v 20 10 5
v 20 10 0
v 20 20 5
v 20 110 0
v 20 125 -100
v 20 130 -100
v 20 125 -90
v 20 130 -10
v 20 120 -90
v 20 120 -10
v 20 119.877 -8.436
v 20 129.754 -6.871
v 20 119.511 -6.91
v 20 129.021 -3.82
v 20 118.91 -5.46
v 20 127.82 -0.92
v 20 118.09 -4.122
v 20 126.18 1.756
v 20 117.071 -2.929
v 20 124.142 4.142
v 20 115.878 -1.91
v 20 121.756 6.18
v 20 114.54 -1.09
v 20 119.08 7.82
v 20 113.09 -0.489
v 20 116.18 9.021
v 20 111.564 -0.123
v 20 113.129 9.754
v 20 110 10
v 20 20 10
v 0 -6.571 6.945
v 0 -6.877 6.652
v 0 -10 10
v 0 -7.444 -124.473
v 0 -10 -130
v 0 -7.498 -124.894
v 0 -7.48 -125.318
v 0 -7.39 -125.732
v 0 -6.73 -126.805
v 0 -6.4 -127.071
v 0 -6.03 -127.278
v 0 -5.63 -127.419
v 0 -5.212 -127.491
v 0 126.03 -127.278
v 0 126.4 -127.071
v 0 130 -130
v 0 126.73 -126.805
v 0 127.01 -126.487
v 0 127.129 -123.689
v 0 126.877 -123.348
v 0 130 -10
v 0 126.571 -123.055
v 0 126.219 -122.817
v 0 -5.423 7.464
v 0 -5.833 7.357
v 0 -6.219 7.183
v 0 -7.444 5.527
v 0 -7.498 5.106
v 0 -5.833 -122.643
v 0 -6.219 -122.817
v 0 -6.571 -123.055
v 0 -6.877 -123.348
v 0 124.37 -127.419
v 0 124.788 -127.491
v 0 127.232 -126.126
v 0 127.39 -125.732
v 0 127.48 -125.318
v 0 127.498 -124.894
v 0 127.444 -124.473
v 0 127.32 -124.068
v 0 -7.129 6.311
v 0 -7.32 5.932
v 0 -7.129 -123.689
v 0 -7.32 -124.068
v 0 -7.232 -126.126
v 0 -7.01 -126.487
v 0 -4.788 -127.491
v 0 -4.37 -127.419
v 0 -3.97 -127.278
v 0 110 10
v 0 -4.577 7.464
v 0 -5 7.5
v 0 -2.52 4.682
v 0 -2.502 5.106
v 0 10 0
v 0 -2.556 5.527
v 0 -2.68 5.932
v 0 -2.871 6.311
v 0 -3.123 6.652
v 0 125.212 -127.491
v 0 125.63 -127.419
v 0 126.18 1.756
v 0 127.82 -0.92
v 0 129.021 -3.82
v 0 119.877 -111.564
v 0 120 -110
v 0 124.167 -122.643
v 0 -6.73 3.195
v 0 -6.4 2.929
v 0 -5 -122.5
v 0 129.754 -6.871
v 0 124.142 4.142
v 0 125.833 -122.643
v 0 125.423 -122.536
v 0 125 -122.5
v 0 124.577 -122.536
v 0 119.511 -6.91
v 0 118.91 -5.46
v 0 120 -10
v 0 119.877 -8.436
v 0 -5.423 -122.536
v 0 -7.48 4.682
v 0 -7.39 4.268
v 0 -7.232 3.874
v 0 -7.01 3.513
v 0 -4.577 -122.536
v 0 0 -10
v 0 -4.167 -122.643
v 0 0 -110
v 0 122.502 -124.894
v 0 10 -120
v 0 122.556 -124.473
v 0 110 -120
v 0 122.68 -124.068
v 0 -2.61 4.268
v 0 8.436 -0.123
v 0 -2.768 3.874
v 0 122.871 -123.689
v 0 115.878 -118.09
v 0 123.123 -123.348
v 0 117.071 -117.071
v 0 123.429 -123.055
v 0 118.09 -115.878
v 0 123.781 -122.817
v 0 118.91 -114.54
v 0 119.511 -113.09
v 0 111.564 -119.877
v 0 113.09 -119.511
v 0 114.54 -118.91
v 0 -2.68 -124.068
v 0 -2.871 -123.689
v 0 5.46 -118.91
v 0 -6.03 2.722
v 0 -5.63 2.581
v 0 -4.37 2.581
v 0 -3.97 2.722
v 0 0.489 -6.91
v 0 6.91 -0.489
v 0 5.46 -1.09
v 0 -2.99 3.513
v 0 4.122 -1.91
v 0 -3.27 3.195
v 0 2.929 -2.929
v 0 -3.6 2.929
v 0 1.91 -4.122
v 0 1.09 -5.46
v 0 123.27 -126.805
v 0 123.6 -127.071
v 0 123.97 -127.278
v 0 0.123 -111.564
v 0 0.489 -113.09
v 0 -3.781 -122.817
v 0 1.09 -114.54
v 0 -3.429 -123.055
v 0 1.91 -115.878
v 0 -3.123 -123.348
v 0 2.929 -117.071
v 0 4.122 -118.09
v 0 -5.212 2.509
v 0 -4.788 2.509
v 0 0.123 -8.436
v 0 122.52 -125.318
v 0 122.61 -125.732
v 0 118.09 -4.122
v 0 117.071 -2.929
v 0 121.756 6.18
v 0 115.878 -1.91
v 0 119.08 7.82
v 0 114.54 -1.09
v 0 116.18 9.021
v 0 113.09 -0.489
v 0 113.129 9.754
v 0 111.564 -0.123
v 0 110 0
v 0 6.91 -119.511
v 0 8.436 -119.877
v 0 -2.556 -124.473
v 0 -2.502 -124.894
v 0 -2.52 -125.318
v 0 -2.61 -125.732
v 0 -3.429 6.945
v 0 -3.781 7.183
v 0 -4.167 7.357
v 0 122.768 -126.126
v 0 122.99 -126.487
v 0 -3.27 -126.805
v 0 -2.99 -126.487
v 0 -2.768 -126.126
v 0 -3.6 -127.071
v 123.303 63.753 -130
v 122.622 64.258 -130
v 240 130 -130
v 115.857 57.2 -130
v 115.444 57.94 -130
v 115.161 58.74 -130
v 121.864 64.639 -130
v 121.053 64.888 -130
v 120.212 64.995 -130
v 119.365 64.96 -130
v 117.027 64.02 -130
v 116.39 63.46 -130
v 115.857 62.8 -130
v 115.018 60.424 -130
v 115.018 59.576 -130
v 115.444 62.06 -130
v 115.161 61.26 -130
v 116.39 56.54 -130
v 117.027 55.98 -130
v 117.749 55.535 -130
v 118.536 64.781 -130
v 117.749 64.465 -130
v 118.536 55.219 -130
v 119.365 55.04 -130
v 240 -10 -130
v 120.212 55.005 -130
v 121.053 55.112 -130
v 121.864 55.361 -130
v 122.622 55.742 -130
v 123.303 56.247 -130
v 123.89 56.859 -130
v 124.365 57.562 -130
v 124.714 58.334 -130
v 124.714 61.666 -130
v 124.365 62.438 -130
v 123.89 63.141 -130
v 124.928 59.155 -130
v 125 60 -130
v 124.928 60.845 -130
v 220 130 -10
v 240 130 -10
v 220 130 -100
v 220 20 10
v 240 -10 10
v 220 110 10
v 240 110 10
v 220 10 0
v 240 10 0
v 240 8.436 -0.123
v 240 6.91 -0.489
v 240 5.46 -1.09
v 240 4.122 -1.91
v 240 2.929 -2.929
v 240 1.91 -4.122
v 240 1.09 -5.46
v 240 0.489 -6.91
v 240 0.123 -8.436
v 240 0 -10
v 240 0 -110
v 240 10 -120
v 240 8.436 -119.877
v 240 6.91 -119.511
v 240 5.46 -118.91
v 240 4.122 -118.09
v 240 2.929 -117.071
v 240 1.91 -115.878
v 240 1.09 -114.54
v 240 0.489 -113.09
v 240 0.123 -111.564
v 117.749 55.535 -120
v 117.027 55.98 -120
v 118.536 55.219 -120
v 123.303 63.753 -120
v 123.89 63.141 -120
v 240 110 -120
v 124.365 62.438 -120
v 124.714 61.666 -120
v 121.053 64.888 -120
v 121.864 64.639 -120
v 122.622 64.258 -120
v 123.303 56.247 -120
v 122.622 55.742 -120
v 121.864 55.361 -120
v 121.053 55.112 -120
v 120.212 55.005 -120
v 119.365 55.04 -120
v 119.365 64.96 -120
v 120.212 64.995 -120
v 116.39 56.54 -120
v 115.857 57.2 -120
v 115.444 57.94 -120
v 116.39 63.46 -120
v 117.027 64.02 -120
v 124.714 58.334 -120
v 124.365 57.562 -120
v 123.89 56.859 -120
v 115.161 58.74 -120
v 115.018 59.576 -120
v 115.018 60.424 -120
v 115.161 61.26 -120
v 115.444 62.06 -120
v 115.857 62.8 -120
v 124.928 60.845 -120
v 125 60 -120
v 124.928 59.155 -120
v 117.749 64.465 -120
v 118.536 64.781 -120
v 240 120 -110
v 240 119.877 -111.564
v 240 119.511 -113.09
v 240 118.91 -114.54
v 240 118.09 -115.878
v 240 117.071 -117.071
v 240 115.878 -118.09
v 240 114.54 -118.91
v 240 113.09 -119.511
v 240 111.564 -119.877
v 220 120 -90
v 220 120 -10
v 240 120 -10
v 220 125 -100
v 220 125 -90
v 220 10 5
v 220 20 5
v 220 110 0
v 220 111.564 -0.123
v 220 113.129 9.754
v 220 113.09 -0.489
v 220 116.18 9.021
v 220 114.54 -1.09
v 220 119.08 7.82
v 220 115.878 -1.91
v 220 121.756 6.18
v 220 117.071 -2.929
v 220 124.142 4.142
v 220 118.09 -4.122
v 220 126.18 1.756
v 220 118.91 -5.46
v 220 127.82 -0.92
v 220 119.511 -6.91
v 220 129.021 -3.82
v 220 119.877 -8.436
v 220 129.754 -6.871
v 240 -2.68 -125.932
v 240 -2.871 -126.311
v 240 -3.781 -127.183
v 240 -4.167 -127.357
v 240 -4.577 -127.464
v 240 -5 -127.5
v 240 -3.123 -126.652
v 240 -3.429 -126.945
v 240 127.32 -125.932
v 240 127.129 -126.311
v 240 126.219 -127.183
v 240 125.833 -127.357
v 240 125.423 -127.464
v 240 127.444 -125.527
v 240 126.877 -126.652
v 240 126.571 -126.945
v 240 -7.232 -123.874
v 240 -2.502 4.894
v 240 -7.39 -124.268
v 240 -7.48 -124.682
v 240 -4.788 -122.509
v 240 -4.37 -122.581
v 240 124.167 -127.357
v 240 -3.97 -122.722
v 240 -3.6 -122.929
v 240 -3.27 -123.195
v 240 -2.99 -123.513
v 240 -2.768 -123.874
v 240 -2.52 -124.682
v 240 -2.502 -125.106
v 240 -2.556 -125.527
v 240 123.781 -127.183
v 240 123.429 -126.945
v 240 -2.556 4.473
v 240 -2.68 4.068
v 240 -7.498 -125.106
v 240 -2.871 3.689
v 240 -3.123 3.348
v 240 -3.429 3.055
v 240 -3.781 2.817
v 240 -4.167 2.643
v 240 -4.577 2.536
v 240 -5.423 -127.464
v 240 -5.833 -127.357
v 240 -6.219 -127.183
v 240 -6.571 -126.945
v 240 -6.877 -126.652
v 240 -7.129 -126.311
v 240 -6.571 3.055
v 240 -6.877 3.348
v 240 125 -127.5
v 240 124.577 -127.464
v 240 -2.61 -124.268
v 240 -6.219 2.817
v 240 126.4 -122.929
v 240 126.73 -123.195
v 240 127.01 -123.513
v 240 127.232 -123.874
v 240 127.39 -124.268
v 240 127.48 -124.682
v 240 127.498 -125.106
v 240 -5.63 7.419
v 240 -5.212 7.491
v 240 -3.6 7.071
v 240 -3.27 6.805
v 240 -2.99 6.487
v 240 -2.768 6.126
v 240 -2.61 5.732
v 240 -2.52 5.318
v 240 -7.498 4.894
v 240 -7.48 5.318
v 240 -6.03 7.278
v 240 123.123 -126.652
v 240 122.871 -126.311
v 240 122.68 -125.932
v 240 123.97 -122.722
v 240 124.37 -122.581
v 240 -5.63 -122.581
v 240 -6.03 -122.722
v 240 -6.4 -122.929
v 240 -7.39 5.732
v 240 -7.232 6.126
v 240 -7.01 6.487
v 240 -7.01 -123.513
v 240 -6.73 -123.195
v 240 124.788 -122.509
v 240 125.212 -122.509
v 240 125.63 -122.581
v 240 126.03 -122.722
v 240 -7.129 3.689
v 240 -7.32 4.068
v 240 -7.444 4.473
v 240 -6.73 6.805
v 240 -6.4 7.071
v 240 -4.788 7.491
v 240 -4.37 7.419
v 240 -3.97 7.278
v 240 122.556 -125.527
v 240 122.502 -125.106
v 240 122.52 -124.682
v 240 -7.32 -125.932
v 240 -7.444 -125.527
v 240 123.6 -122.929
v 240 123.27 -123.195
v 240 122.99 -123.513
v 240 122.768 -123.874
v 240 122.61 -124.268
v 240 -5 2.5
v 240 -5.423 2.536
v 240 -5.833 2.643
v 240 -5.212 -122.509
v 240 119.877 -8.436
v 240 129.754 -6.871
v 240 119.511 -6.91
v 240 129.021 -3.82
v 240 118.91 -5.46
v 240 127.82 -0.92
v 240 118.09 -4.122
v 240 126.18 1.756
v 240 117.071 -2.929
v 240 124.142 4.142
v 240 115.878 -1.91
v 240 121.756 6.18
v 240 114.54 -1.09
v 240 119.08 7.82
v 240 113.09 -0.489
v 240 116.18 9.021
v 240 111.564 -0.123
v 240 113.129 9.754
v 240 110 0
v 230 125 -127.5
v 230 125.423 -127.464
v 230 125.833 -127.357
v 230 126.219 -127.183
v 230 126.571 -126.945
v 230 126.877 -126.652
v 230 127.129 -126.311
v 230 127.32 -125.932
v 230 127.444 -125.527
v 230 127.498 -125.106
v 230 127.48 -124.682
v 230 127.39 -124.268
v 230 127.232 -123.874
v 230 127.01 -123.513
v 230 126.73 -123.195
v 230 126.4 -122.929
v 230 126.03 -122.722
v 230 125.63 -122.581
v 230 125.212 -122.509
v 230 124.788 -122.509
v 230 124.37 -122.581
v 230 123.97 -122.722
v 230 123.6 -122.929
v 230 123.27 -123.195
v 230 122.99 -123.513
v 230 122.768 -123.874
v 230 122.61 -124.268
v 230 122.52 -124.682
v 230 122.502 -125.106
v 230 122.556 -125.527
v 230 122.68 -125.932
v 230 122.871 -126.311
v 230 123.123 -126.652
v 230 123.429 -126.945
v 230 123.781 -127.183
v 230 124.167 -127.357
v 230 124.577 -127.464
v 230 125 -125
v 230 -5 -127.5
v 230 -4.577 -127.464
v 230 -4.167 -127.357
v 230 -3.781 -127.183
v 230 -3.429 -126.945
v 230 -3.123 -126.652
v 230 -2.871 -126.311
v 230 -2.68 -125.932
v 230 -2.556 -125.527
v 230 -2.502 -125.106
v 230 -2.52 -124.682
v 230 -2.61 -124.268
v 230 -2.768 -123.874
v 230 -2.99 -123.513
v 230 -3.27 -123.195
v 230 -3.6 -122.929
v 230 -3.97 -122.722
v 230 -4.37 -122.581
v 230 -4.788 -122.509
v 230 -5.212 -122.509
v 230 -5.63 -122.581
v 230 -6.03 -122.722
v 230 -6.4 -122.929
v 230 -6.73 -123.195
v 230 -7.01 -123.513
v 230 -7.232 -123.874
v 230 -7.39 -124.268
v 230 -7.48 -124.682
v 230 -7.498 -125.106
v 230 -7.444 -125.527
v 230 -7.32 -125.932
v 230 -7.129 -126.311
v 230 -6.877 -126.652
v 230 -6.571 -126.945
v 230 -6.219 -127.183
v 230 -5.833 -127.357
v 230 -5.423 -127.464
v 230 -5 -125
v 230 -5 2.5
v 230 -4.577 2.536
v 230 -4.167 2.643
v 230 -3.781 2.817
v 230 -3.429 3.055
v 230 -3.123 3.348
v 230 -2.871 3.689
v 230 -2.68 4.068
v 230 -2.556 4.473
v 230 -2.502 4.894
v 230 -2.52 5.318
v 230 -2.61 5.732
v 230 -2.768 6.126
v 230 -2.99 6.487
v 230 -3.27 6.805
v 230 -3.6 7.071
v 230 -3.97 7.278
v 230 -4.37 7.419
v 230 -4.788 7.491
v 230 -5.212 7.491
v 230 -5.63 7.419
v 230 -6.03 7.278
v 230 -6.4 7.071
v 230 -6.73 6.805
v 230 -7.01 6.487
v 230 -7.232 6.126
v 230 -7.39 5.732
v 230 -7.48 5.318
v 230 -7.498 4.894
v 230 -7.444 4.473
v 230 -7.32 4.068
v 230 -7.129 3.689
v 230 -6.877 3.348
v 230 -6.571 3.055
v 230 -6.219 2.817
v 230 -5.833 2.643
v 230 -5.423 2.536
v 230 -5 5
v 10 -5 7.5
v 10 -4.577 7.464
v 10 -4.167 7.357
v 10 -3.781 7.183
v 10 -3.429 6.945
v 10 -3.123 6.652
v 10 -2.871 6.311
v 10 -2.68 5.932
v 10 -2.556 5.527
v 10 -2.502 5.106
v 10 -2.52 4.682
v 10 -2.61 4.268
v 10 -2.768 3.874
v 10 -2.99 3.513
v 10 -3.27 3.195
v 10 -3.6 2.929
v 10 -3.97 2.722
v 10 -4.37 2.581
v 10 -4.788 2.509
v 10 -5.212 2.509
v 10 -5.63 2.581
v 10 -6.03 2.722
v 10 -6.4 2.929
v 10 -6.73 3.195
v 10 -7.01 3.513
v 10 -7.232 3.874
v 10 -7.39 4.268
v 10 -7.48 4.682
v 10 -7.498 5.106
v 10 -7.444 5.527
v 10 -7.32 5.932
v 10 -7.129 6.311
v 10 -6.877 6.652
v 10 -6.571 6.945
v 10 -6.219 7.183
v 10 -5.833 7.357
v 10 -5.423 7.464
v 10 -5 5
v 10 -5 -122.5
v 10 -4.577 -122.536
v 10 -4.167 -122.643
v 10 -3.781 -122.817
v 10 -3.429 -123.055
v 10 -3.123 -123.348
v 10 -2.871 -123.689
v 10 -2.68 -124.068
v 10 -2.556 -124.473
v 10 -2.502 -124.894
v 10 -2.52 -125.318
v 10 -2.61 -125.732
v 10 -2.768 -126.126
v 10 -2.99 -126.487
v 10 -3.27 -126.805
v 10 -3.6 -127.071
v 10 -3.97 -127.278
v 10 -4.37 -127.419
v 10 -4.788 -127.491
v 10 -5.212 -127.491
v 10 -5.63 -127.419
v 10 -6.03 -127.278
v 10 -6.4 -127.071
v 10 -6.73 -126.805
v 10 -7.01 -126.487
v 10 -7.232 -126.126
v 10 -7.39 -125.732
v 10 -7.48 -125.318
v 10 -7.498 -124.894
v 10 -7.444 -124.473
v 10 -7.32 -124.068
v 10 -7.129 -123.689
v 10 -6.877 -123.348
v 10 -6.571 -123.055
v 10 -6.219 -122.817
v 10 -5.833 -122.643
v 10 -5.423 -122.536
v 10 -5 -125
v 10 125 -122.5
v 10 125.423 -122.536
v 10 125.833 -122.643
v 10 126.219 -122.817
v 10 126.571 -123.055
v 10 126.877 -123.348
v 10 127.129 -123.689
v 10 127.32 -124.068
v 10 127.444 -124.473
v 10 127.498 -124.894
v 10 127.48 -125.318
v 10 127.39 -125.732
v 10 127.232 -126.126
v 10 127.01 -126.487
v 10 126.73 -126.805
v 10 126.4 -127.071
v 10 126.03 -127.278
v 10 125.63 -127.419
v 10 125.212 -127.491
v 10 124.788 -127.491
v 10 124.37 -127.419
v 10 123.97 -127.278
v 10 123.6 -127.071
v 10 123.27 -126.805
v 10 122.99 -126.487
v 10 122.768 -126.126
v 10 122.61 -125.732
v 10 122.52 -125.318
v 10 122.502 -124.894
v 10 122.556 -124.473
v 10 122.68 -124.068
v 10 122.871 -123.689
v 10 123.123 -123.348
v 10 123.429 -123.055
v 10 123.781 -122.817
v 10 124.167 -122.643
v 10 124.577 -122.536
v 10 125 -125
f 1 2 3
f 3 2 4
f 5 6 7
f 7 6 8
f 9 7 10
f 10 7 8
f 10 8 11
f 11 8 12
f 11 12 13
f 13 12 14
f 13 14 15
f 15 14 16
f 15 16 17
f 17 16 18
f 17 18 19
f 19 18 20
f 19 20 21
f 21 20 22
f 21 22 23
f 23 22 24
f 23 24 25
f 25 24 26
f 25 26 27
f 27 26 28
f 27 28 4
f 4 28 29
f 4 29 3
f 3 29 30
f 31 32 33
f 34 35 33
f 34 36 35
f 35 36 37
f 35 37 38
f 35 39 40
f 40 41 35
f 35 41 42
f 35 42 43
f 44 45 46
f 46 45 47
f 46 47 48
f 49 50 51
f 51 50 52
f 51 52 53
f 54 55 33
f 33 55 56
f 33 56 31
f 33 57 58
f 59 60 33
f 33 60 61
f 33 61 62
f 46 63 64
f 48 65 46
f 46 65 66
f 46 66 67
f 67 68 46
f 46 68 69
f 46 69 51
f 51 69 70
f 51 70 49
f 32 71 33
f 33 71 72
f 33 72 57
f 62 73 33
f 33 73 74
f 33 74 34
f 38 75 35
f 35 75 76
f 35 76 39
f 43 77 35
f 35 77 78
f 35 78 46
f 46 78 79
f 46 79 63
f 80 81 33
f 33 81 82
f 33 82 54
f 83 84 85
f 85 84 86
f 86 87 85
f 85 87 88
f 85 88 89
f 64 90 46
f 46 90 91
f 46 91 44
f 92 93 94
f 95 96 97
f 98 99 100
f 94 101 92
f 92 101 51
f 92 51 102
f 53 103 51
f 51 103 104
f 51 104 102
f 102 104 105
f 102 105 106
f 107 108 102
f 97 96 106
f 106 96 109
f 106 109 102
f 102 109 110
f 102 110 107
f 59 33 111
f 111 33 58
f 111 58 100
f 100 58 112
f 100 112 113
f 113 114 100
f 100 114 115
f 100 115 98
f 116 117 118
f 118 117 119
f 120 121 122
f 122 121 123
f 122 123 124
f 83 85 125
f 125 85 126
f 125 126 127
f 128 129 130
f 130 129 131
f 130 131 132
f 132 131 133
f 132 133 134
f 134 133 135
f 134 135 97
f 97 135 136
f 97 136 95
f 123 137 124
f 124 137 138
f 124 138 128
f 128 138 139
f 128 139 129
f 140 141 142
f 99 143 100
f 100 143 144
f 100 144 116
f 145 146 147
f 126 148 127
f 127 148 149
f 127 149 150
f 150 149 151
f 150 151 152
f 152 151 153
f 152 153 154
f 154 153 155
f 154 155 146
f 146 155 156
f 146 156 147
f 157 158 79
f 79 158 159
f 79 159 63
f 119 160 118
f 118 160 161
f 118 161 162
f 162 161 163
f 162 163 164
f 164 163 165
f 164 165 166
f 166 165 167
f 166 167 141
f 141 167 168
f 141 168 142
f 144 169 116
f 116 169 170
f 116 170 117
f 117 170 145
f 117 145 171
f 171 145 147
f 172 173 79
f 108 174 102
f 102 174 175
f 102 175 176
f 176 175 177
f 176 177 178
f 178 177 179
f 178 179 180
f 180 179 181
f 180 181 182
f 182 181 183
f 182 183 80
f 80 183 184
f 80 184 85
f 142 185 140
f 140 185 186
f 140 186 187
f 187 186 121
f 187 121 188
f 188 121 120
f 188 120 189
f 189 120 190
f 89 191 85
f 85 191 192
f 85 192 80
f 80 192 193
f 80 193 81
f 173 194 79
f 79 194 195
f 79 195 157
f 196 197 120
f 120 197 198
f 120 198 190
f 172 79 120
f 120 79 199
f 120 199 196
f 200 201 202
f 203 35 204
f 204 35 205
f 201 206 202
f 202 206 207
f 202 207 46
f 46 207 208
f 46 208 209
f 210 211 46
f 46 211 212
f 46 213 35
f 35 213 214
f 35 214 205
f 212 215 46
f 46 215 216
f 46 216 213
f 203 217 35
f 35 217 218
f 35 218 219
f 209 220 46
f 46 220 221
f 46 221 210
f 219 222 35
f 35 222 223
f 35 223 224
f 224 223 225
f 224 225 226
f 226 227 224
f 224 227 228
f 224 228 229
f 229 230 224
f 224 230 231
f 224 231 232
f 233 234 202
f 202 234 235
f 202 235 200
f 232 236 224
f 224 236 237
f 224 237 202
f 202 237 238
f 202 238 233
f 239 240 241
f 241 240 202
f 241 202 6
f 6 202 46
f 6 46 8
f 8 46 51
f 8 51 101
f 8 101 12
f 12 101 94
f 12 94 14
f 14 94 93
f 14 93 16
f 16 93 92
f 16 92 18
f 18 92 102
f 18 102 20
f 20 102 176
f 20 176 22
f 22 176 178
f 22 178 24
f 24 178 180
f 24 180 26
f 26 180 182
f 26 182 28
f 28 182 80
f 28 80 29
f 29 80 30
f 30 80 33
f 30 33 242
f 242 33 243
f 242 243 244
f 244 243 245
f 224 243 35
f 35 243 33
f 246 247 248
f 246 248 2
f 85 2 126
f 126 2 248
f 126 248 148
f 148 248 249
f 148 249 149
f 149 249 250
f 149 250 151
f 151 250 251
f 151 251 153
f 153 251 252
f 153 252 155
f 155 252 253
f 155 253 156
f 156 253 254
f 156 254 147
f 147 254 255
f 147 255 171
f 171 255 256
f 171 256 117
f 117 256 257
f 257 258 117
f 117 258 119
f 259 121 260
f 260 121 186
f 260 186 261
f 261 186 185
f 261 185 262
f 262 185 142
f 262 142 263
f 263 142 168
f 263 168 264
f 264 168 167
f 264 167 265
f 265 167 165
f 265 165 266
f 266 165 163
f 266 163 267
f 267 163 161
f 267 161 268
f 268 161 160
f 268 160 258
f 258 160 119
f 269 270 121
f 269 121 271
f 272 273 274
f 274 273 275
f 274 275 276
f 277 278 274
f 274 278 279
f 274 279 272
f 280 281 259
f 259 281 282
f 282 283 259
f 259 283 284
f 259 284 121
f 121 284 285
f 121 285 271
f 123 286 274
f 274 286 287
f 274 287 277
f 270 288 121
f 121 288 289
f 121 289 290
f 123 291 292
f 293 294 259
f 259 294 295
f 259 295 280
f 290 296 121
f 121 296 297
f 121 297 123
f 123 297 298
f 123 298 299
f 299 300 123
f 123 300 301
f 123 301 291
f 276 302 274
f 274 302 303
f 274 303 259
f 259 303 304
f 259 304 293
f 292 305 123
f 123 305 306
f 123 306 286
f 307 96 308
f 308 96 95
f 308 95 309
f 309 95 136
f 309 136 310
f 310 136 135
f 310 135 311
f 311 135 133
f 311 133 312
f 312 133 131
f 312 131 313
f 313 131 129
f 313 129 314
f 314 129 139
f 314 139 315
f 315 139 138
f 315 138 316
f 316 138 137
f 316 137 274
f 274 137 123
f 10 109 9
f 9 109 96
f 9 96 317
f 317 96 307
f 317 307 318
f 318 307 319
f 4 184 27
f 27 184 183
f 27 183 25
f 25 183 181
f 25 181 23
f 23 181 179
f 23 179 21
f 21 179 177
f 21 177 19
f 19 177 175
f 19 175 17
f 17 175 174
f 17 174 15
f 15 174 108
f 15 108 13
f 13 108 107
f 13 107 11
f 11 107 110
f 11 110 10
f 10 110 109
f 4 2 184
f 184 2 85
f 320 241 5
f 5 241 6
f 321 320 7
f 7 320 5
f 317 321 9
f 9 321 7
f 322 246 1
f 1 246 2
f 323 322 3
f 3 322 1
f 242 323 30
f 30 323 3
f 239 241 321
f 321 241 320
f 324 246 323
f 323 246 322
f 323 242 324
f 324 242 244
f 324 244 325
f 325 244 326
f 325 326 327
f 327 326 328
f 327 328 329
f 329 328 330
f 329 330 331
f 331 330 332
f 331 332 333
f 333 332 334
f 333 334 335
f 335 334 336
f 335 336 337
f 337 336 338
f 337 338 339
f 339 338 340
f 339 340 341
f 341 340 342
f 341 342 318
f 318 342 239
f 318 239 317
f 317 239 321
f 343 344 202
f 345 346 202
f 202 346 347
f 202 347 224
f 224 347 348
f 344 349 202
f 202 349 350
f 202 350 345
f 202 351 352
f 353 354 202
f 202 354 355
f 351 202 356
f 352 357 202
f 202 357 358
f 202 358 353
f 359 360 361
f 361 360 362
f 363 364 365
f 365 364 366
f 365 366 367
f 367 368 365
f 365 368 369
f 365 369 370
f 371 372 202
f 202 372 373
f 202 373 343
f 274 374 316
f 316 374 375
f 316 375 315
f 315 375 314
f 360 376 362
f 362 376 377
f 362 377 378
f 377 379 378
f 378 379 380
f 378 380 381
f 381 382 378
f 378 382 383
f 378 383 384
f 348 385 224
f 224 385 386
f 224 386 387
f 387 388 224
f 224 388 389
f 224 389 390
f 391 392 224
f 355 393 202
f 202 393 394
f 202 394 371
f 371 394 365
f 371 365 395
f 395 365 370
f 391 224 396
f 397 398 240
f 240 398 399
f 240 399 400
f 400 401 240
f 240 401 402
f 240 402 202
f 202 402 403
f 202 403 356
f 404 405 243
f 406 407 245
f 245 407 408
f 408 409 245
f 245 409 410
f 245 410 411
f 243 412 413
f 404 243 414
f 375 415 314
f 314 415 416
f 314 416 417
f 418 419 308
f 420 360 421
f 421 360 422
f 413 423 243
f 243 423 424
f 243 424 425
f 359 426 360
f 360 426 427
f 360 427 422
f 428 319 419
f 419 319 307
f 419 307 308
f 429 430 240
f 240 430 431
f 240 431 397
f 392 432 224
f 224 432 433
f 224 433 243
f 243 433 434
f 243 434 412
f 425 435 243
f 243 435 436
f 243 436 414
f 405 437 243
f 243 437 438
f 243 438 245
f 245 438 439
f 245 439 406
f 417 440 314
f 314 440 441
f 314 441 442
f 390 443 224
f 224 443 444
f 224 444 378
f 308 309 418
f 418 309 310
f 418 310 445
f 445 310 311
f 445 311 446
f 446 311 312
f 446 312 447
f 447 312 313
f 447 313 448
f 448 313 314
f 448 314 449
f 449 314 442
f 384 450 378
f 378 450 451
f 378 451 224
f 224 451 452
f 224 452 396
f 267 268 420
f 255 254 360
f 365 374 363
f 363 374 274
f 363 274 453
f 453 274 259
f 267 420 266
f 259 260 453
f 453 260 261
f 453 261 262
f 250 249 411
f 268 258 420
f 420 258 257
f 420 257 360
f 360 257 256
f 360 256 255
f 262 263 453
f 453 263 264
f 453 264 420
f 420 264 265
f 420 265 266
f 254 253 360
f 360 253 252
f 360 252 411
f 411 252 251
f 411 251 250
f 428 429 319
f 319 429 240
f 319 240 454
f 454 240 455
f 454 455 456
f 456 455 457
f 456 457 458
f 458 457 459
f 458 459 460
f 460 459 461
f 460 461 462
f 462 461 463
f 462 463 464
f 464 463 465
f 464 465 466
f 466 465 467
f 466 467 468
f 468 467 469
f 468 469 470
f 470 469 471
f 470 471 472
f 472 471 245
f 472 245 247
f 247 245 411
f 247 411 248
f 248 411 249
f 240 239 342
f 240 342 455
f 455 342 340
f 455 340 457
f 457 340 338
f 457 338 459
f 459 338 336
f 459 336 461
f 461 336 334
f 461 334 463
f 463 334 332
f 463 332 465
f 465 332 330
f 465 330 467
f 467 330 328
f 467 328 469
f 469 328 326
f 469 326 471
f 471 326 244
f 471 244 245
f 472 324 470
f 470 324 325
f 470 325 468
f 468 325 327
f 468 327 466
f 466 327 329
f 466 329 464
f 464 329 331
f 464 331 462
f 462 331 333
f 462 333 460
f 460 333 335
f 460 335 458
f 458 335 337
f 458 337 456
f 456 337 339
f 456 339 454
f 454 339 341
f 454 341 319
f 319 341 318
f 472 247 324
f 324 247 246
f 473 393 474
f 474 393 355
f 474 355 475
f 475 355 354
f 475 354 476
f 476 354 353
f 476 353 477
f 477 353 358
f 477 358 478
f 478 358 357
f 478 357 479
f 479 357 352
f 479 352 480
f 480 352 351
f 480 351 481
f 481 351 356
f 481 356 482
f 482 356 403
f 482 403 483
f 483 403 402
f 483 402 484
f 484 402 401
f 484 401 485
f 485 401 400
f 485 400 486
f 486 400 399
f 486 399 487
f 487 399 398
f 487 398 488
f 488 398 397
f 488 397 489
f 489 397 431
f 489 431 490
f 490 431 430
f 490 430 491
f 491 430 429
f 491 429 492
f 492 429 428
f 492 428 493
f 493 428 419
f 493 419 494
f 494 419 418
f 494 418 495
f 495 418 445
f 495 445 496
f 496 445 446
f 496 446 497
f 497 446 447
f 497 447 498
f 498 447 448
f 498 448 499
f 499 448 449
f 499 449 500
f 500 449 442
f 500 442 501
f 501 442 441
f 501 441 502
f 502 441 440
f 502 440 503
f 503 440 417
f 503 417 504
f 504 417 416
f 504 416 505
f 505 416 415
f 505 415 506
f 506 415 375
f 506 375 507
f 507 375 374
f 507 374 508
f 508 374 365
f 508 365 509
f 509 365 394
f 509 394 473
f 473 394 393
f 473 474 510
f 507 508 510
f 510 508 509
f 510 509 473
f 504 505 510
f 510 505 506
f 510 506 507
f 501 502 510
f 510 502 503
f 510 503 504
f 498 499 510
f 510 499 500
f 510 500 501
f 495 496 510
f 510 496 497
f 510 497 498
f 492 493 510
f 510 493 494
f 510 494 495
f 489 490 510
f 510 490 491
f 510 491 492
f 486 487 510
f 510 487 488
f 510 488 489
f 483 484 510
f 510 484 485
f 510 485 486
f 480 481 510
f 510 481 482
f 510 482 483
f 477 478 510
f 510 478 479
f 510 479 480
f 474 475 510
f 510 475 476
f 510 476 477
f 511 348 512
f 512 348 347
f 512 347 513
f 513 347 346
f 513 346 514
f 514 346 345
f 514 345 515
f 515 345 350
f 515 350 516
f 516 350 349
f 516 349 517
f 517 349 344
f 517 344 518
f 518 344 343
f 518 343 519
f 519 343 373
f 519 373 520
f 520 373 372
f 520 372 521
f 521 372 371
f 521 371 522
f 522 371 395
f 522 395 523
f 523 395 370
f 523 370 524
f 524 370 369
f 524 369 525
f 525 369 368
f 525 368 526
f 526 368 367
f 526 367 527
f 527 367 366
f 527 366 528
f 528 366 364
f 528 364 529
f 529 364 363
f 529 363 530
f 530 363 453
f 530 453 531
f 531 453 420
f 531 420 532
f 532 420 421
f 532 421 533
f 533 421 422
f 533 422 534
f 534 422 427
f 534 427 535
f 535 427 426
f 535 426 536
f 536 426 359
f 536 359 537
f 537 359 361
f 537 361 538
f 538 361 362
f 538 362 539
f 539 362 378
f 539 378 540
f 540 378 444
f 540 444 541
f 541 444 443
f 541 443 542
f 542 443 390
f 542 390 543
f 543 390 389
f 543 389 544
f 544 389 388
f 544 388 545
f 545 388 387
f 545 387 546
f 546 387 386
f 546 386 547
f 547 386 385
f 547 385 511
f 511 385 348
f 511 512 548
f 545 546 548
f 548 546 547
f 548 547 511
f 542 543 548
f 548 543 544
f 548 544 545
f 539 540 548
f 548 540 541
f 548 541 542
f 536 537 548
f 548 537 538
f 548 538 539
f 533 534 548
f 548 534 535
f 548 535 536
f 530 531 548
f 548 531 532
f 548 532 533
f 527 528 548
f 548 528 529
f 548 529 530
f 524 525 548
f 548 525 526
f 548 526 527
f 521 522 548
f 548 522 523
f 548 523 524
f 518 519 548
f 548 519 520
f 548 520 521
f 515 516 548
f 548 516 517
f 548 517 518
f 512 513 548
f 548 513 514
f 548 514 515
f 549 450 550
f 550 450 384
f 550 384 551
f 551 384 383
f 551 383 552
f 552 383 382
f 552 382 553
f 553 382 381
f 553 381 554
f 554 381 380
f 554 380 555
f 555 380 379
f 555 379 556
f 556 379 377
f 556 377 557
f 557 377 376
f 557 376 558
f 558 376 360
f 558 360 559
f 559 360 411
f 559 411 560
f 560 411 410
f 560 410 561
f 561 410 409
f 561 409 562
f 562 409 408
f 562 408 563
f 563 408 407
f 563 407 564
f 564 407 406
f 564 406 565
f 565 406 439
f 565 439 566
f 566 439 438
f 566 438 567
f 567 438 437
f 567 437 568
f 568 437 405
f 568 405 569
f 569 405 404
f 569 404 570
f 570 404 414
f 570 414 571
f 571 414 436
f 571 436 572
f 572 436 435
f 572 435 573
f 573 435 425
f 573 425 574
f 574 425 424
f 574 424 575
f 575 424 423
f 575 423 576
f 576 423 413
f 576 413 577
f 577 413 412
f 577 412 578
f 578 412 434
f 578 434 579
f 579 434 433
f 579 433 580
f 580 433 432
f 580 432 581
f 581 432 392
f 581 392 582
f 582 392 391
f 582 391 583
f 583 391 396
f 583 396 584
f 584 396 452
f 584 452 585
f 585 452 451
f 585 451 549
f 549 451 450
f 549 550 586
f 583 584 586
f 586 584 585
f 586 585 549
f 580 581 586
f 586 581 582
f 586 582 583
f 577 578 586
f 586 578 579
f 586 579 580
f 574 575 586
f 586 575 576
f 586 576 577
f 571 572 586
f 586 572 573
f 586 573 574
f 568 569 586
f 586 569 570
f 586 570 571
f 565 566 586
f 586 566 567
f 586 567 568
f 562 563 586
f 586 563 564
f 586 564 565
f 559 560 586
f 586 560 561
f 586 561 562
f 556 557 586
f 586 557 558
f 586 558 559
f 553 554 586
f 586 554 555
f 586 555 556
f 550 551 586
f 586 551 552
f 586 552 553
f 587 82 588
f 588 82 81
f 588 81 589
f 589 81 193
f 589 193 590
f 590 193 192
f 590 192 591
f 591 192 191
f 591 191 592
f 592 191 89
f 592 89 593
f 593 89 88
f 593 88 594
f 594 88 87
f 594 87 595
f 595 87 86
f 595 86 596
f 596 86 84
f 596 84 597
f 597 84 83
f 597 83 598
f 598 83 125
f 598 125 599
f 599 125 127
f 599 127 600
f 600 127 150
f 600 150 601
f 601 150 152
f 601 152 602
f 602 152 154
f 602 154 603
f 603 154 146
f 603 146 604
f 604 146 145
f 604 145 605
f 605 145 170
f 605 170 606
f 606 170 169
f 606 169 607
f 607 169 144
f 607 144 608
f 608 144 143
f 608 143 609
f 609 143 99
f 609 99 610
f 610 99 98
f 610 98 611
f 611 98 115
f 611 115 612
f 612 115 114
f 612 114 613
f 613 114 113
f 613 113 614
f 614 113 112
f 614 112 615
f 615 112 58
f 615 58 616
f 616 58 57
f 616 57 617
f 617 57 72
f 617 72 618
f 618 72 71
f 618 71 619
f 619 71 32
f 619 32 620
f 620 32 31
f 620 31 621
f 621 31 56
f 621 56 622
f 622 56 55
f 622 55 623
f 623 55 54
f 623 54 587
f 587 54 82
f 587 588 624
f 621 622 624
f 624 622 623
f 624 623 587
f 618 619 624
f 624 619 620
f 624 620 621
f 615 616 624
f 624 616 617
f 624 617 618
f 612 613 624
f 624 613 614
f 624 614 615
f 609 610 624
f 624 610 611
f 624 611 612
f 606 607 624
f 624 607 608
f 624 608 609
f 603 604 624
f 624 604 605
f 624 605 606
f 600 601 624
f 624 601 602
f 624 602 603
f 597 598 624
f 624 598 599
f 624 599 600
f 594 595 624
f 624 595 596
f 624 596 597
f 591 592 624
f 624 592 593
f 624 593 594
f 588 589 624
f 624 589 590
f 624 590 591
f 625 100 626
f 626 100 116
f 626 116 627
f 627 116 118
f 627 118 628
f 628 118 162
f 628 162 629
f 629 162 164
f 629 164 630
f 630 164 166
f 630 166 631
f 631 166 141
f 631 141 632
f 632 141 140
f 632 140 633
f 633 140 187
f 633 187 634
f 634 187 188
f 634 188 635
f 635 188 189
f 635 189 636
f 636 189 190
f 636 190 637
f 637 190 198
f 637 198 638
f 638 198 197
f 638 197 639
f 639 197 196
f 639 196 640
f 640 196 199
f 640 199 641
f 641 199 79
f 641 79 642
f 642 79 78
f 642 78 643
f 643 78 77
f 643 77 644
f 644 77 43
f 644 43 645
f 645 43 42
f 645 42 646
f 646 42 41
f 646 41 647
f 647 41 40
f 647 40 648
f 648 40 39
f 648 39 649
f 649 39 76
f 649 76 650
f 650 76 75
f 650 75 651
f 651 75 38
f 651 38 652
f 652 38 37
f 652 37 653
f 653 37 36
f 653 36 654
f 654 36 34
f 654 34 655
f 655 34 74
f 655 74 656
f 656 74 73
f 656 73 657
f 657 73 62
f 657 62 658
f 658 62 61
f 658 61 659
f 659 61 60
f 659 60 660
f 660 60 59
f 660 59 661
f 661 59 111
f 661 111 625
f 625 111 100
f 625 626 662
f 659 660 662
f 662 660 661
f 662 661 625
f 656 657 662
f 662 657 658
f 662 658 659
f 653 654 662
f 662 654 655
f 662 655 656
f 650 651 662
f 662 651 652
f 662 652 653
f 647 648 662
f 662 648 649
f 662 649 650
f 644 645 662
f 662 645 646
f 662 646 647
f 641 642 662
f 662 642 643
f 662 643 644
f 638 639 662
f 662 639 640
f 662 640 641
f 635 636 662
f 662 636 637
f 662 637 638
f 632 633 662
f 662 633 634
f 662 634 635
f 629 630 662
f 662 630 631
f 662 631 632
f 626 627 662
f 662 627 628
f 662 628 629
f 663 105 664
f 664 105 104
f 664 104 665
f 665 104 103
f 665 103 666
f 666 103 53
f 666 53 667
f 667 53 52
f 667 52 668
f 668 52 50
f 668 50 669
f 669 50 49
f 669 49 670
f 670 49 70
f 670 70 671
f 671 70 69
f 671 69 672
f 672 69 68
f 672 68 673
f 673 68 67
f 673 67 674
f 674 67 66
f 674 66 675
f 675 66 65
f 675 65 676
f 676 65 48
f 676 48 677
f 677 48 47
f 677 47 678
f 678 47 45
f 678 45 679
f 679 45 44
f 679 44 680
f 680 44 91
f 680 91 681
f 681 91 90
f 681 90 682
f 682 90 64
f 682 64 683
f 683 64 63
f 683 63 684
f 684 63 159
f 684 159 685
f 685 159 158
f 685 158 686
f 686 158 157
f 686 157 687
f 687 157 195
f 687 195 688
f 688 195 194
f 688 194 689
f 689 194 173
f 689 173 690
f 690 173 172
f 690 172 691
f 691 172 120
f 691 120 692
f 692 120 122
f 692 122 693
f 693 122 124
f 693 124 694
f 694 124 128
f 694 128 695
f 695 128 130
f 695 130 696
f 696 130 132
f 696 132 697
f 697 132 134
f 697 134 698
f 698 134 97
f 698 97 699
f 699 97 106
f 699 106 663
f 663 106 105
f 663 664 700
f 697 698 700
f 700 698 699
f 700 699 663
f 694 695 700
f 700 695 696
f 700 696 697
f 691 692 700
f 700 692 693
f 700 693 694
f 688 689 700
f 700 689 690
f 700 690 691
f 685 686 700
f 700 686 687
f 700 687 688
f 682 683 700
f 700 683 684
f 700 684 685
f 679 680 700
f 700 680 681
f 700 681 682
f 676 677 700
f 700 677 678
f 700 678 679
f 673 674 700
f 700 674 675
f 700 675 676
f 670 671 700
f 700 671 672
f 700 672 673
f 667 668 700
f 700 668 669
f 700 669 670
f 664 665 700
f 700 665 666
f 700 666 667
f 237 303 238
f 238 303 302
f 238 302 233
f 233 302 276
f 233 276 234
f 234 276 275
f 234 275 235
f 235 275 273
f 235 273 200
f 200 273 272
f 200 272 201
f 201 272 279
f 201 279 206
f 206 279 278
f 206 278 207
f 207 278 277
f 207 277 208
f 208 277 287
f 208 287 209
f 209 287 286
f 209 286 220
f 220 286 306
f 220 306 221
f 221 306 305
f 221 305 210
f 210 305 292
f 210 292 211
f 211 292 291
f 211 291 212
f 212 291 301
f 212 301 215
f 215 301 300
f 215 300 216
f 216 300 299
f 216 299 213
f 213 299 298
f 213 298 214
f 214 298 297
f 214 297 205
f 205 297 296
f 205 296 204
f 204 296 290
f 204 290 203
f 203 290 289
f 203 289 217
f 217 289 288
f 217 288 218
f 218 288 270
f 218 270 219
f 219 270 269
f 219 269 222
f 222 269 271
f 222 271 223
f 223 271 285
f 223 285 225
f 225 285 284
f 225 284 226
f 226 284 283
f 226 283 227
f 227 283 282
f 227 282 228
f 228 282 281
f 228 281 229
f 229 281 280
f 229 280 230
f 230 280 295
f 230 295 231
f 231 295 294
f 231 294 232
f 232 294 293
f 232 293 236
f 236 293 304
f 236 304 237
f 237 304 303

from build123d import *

# Parameters (mm, degrees)
EXTRUDE_1_DEPTH     = 20
EXTRUDE_2_DEPTH     = 200
EXTRUDE_3_DEPTH     = 20
SKETCH_5_R          = 2.5
CUT_EXTRUDE_1_DEPTH = 10
CUT_EXTRUDE_START   = -10
SKETCH_6_R          = 2.5
CUT_EXTRUDE_2_DEPTH = 10
CUT_EXTRUDE_3_REACH = 304.324
SKETCH_7_R          = 5


with BuildPart() as part:
    # 草图1 → 凸台-拉伸1 (new body)
    with BuildSketch(Plane(origin=(0, 0, 0), x_dir=(0, 0, -1), z_dir=(1, 0, 0))):
        with BuildLine():
            Line((10, 130), (130, 130))
            Line((130, 130), (130, -10))
            Line((130, -10), (-10, -10))
            Line((-10, -10), (-10, 110))
            ThreePointArc((-10, 110), (-4.142135624, 124.142135624), (10, 130))
        make_face()
        with BuildLine():
            Line((10, 0), (110, 0))
            ThreePointArc((110, 0), (117.071067812, 2.928932188), (120, 10))
            Line((120, 10), (120, 110))
            ThreePointArc((120, 110), (117.071067812, 117.071067812), (110, 120))
            Line((110, 120), (10, 120))
            ThreePointArc((10, 120), (2.928932188, 117.071067812), (0, 110))
            Line((0, 110), (0, 10))
            ThreePointArc((0, 10), (2.928932188, 2.928932188), (10, 0))
        make_face(mode=Mode.SUBTRACT)
    extrude(amount=EXTRUDE_1_DEPTH)

    # 草图2 → 凸台-拉伸2 (add)
    with BuildSketch(Plane(origin=(20, 0, 0), x_dir=(0, 0, -1), z_dir=(1, 0, 0))):
        with BuildLine():
            Line((130, 130), (100, 130))
            Line((100, 130), (100, 125))
            Line((100, 125), (90, 125))
            Line((90, 125), (90, 120))
            Line((90, 120), (107.421459813, 120))
            Line((107.421459813, 120), (110, 120))
            ThreePointArc((110, 120), (117.071067812, 117.071067812), (120, 110))
            Line((120, 110), (120, 10))
            ThreePointArc((120, 10), (117.071067812, 2.928932188), (110, 0))
            Line((110, 0), (10, 0))
            ThreePointArc((10, 0), (2.928932188, 2.928932188), (0, 10))
            Line((0, 10), (-5, 10))
            Line((-5, 10), (-5, 20))
            Line((-5, 20), (-10, 20))
            Line((-10, 20), (-10, 10))
            Line((-10, 10), (-10, -10))
            Line((-10, -10), (130, -10))
            Line((130, -10), (130, 130))
        make_face()
    extrude(amount=EXTRUDE_2_DEPTH)

    # 草图3 → 凸台-拉伸3 (add)
    with BuildSketch(Plane(origin=(220, 0, 0), x_dir=(0, 0, -1), z_dir=(1, 0, 0))):
        with BuildLine():
            Line((130, 130), (10, 130))
            ThreePointArc((10, 130), (-4.142135624, 124.142135624), (-10, 110))
            Line((-10, 110), (-10, -10))
            Line((-10, -10), (130, -10))
            Line((130, -10), (130, 130))
        make_face()
        with BuildLine():
            Line((0, 110), (0, 10))
            ThreePointArc((0, 10), (2.928932188, 2.928932188), (10, 0))
            Line((10, 0), (110, 0))
            ThreePointArc((110, 0), (117.071067812, 2.928932188), (120, 10))
            Line((120, 10), (120, 110))
            ThreePointArc((120, 110), (117.071067812, 117.071067812), (110, 120))
            Line((110, 120), (10, 120))
            ThreePointArc((10, 120), (2.928932188, 117.071067812), (0, 110))
        make_face(mode=Mode.SUBTRACT)
    extrude(amount=EXTRUDE_3_DEPTH)

    # 草图5 → 切除-拉伸1 (cut)
    with BuildSketch(Plane(origin=(240, 0, 0), x_dir=(0, 0, -1), z_dir=(1, 0, 0))):
        with Locations((-5, -5)):
            Circle(SKETCH_5_R)
        with Locations((125, -5)):
            Circle(SKETCH_5_R)
        with Locations((125, 125)):
            Circle(SKETCH_5_R)
    extrude(amount=-CUT_EXTRUDE_1_DEPTH, mode=Mode.SUBTRACT)

    # 草图6 → 切除-拉伸2 (cut)
    with BuildSketch(Plane.ZY.offset(CUT_EXTRUDE_START)):
        with Locations(Location((-125, 125, 0), (0, 0, 180))):
            Circle(SKETCH_6_R)
        with Locations(Location((-125, -5, 0), (0, 0, 180))):
            Circle(SKETCH_6_R)
        with Locations(Location((5, -5, 0), (0, 0, 180))):
            Circle(SKETCH_6_R)
    extrude(amount=CUT_EXTRUDE_2_DEPTH, mode=Mode.SUBTRACT)

    # 草图7 → 切除-拉伸3 (cut, up to next)
    with BuildSketch(Plane.XY.offset(-120), mode=Mode.PRIVATE) as cut_extrude_3_sk1:
        with Locations((120, 60)):
            Circle(SKETCH_7_R)
    cut_extrude_3_tool1 = extrude(cut_extrude_3_sk1.sketch, amount=-CUT_EXTRUDE_3_REACH, mode=Mode.PRIVATE) & part.part
    add(cut_extrude_3_tool1.solids().sort_by_distance((120, 60, -120))[0], mode=Mode.SUBTRACT)


solid = part.part
